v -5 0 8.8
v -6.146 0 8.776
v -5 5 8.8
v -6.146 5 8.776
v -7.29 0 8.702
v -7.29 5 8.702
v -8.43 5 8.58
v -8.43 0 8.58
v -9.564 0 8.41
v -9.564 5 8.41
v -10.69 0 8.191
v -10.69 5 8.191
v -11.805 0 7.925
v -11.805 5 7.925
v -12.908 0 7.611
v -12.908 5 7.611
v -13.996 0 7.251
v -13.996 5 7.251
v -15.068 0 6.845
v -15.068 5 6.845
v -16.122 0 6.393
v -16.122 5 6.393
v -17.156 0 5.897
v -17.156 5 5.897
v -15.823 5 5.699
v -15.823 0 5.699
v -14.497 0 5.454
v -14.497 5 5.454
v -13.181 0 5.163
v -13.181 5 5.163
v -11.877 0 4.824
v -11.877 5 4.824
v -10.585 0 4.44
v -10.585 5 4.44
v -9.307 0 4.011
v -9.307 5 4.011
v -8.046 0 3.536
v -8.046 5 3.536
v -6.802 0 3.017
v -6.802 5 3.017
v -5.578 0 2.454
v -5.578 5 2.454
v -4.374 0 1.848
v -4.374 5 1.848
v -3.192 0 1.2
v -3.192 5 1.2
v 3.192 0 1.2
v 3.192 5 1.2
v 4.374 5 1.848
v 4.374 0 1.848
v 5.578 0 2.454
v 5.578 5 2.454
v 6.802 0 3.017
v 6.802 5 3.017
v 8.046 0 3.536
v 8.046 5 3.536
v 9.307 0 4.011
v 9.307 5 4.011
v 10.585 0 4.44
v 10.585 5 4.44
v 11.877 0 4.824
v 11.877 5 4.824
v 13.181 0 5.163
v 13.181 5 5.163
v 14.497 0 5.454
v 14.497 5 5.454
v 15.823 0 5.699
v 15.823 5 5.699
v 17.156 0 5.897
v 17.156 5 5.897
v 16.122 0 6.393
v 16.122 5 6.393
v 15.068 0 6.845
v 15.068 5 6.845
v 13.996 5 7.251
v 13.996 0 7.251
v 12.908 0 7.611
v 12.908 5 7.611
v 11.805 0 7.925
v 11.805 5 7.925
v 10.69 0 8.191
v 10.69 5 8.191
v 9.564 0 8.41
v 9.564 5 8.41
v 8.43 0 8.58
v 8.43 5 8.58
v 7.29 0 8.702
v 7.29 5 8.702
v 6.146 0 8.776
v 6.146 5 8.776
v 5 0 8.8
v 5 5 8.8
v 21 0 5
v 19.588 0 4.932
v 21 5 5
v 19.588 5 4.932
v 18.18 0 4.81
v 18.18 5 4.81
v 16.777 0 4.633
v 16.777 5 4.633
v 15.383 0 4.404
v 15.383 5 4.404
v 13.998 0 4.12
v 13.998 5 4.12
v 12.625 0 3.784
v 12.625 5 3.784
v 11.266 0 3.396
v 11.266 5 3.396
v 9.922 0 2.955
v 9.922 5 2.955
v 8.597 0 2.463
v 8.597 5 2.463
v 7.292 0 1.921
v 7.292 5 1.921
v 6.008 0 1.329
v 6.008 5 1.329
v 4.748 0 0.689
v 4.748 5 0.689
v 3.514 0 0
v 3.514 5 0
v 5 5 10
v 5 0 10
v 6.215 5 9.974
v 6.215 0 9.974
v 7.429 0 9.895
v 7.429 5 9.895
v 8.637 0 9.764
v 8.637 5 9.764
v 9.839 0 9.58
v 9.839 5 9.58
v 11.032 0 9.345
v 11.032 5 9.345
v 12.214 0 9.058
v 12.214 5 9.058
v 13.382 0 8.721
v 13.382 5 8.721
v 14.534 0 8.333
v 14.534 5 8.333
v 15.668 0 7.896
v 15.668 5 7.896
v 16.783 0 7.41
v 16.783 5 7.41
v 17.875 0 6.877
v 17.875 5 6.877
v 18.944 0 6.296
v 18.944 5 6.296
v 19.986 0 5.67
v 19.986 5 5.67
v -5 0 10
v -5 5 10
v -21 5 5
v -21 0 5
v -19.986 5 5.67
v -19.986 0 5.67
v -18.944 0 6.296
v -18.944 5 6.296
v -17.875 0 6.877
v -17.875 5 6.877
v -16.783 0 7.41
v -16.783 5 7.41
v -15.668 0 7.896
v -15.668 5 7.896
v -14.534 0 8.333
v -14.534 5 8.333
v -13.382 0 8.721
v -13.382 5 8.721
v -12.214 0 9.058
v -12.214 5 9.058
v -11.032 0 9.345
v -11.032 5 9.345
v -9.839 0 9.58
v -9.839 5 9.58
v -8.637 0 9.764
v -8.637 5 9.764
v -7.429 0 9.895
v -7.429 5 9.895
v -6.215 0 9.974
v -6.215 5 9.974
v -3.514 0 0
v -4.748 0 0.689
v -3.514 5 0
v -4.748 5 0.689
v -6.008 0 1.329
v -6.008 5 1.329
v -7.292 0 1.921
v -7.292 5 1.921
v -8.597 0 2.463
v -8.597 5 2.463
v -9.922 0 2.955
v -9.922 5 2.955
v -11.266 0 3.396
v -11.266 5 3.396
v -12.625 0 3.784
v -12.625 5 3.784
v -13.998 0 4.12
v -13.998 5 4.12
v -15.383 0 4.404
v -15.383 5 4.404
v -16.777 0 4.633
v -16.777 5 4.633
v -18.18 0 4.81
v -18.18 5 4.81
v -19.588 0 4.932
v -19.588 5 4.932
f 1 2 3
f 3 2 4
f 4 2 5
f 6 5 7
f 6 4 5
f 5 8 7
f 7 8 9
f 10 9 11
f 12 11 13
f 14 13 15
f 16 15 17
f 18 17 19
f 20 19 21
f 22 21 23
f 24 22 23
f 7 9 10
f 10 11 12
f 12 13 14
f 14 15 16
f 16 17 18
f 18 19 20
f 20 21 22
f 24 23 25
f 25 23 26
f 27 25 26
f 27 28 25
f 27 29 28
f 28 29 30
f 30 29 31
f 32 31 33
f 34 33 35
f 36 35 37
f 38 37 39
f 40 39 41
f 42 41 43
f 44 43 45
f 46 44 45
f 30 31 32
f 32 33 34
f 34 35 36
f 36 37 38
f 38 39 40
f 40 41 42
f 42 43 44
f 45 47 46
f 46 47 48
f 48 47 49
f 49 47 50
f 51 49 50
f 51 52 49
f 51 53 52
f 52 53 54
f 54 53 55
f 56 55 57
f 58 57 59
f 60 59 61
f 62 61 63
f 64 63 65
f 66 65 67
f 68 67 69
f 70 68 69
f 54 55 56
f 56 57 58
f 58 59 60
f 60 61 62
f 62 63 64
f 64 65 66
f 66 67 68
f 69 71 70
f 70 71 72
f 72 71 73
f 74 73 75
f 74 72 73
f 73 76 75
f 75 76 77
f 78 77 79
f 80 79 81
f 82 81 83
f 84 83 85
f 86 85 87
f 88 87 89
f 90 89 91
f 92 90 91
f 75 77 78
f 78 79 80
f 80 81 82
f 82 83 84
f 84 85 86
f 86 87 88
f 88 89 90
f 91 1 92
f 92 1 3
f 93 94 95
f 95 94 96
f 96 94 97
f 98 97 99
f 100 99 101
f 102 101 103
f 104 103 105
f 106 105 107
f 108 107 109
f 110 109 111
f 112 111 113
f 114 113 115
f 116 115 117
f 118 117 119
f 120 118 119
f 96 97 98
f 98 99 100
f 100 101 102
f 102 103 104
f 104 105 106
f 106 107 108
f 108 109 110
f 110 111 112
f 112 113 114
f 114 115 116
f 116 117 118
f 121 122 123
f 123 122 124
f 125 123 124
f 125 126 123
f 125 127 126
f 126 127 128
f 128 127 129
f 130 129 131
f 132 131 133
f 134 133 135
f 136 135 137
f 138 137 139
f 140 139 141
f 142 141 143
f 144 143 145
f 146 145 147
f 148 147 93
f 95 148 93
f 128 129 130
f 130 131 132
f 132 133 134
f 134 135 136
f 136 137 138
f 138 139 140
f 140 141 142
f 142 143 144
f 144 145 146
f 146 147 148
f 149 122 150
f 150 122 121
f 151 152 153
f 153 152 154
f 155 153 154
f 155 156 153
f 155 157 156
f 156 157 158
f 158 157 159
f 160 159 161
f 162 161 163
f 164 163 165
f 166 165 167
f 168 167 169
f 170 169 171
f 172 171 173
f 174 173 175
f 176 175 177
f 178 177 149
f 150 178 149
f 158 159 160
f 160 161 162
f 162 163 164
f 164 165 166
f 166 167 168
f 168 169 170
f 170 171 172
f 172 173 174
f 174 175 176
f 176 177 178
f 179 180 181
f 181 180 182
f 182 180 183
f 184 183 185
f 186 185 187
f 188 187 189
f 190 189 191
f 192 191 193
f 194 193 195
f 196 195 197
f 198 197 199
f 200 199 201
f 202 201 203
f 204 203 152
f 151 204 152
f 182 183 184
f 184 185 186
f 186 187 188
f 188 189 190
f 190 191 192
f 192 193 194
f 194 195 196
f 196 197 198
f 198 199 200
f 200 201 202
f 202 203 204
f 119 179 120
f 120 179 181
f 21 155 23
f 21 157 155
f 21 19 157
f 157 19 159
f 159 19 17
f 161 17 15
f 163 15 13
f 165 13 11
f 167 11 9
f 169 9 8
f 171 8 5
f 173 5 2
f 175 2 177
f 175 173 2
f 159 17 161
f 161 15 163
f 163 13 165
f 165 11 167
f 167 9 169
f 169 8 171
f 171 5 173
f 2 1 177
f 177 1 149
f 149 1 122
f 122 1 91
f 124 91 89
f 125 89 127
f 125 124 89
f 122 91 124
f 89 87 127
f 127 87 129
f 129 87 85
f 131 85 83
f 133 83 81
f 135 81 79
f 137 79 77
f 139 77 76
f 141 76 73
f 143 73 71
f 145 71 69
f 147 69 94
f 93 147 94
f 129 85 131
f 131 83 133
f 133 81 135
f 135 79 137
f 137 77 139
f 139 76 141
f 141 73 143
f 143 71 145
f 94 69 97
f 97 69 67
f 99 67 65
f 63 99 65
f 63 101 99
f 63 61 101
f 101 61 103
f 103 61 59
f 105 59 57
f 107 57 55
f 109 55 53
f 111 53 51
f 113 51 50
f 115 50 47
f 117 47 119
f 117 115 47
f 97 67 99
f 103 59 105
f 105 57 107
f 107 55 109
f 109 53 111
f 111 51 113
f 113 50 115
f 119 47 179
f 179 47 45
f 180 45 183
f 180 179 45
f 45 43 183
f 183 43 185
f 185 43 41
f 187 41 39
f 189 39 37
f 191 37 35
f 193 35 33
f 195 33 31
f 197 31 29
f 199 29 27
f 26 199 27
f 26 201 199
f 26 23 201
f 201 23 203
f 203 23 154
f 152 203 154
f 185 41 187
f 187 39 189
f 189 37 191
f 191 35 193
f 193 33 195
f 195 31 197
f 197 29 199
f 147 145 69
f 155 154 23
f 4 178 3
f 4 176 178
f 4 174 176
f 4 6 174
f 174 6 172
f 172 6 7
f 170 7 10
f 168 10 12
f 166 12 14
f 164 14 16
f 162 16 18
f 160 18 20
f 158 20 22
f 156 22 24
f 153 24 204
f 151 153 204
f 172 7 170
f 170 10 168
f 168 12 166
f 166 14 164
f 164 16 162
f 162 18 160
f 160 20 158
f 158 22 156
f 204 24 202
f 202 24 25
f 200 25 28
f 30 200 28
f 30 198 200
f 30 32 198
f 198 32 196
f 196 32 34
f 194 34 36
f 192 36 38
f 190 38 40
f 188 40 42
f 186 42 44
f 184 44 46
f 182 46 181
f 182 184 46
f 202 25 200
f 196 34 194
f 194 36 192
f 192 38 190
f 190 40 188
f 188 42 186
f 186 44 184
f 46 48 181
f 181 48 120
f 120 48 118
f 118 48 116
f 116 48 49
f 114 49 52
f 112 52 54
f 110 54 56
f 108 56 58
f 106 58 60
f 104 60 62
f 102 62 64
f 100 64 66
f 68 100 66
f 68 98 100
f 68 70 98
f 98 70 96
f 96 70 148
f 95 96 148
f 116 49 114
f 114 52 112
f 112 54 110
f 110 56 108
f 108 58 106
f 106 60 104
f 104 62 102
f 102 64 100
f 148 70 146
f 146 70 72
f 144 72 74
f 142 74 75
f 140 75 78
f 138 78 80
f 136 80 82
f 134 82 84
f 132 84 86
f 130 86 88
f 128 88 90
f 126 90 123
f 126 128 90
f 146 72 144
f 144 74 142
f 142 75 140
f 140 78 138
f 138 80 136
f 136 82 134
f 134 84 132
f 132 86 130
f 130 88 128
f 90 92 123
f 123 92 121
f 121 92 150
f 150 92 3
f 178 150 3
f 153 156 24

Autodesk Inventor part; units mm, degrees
ref_plane "YZ Plane" through (0, 0, 0) normal (1, 0, 0) x (0, 1, 0)
ref_plane "XZ Plane" through (0, 0, 0) normal (0, 1, 0) x (-1, 0, 0)
ref_plane "XY Plane" through (0, 0, 0) normal (0, 0, 1) x (1, 0, 0)
sketch "Skizze1" plane through (0, 0, 0) normal (0, 1, 0) x (-1, 0, 0)
  line L0 (0, 0) -> (-3.5135, 0)
  line L1 (0, 10) -> (-5, 10)
  arc A0 (-3.5135, 0) -> (-21, 5) centre (-22.0683, -31.8139) ccw
  arc A1 (-5, 10) -> (-21, 5) centre (-5, -18.1) ccw
  line L2 (0, 8.8) -> (-5, 8.8)
  arc A2 (-5, 8.8) -> (-17.1557, 5.8969) centre (-5, -18.1) ccw
  arc A3 (-3.1919, 1.2) -> (-17.1557, 5.8969) centre (-22.0683, -31.8139) ccw
  line L3 (-3.1919, 1.2) -> (0, 1.2)
  line L4 (0, 0) -> (0, 10) construction
  line L5 (0, 0) -> (3.5135, 0)
  line L6 (0, 10) -> (5, 10)
  arc A4 (21, 5) -> (3.5135, 0) centre (22.0683, -31.8139) ccw
  arc A5 (21, 5) -> (5, 10) centre (5, -18.1) ccw
  line L7 (0, 8.8) -> (5, 8.8)
  arc A6 (17.1557, 5.8969) -> (5, 8.8) centre (5, -18.1) ccw
  arc A7 (17.1557, 5.8969) -> (3.1919, 1.2) centre (22.0683, -31.8139) ccw
  line L8 (3.1919, 1.2) -> (0, 1.2)
  dimension "d0" = 5
  dimension "d1" = 21
  dimension "d2" = 5
  dimension "d3" = 5
  dimension "d4" = 5
  dimension "d6" = 1.2
  dimension "d7" = 10
extrude "Extrusion1" add sketch "Skizze1" along normal blind 5
properties part number "Spring2"
